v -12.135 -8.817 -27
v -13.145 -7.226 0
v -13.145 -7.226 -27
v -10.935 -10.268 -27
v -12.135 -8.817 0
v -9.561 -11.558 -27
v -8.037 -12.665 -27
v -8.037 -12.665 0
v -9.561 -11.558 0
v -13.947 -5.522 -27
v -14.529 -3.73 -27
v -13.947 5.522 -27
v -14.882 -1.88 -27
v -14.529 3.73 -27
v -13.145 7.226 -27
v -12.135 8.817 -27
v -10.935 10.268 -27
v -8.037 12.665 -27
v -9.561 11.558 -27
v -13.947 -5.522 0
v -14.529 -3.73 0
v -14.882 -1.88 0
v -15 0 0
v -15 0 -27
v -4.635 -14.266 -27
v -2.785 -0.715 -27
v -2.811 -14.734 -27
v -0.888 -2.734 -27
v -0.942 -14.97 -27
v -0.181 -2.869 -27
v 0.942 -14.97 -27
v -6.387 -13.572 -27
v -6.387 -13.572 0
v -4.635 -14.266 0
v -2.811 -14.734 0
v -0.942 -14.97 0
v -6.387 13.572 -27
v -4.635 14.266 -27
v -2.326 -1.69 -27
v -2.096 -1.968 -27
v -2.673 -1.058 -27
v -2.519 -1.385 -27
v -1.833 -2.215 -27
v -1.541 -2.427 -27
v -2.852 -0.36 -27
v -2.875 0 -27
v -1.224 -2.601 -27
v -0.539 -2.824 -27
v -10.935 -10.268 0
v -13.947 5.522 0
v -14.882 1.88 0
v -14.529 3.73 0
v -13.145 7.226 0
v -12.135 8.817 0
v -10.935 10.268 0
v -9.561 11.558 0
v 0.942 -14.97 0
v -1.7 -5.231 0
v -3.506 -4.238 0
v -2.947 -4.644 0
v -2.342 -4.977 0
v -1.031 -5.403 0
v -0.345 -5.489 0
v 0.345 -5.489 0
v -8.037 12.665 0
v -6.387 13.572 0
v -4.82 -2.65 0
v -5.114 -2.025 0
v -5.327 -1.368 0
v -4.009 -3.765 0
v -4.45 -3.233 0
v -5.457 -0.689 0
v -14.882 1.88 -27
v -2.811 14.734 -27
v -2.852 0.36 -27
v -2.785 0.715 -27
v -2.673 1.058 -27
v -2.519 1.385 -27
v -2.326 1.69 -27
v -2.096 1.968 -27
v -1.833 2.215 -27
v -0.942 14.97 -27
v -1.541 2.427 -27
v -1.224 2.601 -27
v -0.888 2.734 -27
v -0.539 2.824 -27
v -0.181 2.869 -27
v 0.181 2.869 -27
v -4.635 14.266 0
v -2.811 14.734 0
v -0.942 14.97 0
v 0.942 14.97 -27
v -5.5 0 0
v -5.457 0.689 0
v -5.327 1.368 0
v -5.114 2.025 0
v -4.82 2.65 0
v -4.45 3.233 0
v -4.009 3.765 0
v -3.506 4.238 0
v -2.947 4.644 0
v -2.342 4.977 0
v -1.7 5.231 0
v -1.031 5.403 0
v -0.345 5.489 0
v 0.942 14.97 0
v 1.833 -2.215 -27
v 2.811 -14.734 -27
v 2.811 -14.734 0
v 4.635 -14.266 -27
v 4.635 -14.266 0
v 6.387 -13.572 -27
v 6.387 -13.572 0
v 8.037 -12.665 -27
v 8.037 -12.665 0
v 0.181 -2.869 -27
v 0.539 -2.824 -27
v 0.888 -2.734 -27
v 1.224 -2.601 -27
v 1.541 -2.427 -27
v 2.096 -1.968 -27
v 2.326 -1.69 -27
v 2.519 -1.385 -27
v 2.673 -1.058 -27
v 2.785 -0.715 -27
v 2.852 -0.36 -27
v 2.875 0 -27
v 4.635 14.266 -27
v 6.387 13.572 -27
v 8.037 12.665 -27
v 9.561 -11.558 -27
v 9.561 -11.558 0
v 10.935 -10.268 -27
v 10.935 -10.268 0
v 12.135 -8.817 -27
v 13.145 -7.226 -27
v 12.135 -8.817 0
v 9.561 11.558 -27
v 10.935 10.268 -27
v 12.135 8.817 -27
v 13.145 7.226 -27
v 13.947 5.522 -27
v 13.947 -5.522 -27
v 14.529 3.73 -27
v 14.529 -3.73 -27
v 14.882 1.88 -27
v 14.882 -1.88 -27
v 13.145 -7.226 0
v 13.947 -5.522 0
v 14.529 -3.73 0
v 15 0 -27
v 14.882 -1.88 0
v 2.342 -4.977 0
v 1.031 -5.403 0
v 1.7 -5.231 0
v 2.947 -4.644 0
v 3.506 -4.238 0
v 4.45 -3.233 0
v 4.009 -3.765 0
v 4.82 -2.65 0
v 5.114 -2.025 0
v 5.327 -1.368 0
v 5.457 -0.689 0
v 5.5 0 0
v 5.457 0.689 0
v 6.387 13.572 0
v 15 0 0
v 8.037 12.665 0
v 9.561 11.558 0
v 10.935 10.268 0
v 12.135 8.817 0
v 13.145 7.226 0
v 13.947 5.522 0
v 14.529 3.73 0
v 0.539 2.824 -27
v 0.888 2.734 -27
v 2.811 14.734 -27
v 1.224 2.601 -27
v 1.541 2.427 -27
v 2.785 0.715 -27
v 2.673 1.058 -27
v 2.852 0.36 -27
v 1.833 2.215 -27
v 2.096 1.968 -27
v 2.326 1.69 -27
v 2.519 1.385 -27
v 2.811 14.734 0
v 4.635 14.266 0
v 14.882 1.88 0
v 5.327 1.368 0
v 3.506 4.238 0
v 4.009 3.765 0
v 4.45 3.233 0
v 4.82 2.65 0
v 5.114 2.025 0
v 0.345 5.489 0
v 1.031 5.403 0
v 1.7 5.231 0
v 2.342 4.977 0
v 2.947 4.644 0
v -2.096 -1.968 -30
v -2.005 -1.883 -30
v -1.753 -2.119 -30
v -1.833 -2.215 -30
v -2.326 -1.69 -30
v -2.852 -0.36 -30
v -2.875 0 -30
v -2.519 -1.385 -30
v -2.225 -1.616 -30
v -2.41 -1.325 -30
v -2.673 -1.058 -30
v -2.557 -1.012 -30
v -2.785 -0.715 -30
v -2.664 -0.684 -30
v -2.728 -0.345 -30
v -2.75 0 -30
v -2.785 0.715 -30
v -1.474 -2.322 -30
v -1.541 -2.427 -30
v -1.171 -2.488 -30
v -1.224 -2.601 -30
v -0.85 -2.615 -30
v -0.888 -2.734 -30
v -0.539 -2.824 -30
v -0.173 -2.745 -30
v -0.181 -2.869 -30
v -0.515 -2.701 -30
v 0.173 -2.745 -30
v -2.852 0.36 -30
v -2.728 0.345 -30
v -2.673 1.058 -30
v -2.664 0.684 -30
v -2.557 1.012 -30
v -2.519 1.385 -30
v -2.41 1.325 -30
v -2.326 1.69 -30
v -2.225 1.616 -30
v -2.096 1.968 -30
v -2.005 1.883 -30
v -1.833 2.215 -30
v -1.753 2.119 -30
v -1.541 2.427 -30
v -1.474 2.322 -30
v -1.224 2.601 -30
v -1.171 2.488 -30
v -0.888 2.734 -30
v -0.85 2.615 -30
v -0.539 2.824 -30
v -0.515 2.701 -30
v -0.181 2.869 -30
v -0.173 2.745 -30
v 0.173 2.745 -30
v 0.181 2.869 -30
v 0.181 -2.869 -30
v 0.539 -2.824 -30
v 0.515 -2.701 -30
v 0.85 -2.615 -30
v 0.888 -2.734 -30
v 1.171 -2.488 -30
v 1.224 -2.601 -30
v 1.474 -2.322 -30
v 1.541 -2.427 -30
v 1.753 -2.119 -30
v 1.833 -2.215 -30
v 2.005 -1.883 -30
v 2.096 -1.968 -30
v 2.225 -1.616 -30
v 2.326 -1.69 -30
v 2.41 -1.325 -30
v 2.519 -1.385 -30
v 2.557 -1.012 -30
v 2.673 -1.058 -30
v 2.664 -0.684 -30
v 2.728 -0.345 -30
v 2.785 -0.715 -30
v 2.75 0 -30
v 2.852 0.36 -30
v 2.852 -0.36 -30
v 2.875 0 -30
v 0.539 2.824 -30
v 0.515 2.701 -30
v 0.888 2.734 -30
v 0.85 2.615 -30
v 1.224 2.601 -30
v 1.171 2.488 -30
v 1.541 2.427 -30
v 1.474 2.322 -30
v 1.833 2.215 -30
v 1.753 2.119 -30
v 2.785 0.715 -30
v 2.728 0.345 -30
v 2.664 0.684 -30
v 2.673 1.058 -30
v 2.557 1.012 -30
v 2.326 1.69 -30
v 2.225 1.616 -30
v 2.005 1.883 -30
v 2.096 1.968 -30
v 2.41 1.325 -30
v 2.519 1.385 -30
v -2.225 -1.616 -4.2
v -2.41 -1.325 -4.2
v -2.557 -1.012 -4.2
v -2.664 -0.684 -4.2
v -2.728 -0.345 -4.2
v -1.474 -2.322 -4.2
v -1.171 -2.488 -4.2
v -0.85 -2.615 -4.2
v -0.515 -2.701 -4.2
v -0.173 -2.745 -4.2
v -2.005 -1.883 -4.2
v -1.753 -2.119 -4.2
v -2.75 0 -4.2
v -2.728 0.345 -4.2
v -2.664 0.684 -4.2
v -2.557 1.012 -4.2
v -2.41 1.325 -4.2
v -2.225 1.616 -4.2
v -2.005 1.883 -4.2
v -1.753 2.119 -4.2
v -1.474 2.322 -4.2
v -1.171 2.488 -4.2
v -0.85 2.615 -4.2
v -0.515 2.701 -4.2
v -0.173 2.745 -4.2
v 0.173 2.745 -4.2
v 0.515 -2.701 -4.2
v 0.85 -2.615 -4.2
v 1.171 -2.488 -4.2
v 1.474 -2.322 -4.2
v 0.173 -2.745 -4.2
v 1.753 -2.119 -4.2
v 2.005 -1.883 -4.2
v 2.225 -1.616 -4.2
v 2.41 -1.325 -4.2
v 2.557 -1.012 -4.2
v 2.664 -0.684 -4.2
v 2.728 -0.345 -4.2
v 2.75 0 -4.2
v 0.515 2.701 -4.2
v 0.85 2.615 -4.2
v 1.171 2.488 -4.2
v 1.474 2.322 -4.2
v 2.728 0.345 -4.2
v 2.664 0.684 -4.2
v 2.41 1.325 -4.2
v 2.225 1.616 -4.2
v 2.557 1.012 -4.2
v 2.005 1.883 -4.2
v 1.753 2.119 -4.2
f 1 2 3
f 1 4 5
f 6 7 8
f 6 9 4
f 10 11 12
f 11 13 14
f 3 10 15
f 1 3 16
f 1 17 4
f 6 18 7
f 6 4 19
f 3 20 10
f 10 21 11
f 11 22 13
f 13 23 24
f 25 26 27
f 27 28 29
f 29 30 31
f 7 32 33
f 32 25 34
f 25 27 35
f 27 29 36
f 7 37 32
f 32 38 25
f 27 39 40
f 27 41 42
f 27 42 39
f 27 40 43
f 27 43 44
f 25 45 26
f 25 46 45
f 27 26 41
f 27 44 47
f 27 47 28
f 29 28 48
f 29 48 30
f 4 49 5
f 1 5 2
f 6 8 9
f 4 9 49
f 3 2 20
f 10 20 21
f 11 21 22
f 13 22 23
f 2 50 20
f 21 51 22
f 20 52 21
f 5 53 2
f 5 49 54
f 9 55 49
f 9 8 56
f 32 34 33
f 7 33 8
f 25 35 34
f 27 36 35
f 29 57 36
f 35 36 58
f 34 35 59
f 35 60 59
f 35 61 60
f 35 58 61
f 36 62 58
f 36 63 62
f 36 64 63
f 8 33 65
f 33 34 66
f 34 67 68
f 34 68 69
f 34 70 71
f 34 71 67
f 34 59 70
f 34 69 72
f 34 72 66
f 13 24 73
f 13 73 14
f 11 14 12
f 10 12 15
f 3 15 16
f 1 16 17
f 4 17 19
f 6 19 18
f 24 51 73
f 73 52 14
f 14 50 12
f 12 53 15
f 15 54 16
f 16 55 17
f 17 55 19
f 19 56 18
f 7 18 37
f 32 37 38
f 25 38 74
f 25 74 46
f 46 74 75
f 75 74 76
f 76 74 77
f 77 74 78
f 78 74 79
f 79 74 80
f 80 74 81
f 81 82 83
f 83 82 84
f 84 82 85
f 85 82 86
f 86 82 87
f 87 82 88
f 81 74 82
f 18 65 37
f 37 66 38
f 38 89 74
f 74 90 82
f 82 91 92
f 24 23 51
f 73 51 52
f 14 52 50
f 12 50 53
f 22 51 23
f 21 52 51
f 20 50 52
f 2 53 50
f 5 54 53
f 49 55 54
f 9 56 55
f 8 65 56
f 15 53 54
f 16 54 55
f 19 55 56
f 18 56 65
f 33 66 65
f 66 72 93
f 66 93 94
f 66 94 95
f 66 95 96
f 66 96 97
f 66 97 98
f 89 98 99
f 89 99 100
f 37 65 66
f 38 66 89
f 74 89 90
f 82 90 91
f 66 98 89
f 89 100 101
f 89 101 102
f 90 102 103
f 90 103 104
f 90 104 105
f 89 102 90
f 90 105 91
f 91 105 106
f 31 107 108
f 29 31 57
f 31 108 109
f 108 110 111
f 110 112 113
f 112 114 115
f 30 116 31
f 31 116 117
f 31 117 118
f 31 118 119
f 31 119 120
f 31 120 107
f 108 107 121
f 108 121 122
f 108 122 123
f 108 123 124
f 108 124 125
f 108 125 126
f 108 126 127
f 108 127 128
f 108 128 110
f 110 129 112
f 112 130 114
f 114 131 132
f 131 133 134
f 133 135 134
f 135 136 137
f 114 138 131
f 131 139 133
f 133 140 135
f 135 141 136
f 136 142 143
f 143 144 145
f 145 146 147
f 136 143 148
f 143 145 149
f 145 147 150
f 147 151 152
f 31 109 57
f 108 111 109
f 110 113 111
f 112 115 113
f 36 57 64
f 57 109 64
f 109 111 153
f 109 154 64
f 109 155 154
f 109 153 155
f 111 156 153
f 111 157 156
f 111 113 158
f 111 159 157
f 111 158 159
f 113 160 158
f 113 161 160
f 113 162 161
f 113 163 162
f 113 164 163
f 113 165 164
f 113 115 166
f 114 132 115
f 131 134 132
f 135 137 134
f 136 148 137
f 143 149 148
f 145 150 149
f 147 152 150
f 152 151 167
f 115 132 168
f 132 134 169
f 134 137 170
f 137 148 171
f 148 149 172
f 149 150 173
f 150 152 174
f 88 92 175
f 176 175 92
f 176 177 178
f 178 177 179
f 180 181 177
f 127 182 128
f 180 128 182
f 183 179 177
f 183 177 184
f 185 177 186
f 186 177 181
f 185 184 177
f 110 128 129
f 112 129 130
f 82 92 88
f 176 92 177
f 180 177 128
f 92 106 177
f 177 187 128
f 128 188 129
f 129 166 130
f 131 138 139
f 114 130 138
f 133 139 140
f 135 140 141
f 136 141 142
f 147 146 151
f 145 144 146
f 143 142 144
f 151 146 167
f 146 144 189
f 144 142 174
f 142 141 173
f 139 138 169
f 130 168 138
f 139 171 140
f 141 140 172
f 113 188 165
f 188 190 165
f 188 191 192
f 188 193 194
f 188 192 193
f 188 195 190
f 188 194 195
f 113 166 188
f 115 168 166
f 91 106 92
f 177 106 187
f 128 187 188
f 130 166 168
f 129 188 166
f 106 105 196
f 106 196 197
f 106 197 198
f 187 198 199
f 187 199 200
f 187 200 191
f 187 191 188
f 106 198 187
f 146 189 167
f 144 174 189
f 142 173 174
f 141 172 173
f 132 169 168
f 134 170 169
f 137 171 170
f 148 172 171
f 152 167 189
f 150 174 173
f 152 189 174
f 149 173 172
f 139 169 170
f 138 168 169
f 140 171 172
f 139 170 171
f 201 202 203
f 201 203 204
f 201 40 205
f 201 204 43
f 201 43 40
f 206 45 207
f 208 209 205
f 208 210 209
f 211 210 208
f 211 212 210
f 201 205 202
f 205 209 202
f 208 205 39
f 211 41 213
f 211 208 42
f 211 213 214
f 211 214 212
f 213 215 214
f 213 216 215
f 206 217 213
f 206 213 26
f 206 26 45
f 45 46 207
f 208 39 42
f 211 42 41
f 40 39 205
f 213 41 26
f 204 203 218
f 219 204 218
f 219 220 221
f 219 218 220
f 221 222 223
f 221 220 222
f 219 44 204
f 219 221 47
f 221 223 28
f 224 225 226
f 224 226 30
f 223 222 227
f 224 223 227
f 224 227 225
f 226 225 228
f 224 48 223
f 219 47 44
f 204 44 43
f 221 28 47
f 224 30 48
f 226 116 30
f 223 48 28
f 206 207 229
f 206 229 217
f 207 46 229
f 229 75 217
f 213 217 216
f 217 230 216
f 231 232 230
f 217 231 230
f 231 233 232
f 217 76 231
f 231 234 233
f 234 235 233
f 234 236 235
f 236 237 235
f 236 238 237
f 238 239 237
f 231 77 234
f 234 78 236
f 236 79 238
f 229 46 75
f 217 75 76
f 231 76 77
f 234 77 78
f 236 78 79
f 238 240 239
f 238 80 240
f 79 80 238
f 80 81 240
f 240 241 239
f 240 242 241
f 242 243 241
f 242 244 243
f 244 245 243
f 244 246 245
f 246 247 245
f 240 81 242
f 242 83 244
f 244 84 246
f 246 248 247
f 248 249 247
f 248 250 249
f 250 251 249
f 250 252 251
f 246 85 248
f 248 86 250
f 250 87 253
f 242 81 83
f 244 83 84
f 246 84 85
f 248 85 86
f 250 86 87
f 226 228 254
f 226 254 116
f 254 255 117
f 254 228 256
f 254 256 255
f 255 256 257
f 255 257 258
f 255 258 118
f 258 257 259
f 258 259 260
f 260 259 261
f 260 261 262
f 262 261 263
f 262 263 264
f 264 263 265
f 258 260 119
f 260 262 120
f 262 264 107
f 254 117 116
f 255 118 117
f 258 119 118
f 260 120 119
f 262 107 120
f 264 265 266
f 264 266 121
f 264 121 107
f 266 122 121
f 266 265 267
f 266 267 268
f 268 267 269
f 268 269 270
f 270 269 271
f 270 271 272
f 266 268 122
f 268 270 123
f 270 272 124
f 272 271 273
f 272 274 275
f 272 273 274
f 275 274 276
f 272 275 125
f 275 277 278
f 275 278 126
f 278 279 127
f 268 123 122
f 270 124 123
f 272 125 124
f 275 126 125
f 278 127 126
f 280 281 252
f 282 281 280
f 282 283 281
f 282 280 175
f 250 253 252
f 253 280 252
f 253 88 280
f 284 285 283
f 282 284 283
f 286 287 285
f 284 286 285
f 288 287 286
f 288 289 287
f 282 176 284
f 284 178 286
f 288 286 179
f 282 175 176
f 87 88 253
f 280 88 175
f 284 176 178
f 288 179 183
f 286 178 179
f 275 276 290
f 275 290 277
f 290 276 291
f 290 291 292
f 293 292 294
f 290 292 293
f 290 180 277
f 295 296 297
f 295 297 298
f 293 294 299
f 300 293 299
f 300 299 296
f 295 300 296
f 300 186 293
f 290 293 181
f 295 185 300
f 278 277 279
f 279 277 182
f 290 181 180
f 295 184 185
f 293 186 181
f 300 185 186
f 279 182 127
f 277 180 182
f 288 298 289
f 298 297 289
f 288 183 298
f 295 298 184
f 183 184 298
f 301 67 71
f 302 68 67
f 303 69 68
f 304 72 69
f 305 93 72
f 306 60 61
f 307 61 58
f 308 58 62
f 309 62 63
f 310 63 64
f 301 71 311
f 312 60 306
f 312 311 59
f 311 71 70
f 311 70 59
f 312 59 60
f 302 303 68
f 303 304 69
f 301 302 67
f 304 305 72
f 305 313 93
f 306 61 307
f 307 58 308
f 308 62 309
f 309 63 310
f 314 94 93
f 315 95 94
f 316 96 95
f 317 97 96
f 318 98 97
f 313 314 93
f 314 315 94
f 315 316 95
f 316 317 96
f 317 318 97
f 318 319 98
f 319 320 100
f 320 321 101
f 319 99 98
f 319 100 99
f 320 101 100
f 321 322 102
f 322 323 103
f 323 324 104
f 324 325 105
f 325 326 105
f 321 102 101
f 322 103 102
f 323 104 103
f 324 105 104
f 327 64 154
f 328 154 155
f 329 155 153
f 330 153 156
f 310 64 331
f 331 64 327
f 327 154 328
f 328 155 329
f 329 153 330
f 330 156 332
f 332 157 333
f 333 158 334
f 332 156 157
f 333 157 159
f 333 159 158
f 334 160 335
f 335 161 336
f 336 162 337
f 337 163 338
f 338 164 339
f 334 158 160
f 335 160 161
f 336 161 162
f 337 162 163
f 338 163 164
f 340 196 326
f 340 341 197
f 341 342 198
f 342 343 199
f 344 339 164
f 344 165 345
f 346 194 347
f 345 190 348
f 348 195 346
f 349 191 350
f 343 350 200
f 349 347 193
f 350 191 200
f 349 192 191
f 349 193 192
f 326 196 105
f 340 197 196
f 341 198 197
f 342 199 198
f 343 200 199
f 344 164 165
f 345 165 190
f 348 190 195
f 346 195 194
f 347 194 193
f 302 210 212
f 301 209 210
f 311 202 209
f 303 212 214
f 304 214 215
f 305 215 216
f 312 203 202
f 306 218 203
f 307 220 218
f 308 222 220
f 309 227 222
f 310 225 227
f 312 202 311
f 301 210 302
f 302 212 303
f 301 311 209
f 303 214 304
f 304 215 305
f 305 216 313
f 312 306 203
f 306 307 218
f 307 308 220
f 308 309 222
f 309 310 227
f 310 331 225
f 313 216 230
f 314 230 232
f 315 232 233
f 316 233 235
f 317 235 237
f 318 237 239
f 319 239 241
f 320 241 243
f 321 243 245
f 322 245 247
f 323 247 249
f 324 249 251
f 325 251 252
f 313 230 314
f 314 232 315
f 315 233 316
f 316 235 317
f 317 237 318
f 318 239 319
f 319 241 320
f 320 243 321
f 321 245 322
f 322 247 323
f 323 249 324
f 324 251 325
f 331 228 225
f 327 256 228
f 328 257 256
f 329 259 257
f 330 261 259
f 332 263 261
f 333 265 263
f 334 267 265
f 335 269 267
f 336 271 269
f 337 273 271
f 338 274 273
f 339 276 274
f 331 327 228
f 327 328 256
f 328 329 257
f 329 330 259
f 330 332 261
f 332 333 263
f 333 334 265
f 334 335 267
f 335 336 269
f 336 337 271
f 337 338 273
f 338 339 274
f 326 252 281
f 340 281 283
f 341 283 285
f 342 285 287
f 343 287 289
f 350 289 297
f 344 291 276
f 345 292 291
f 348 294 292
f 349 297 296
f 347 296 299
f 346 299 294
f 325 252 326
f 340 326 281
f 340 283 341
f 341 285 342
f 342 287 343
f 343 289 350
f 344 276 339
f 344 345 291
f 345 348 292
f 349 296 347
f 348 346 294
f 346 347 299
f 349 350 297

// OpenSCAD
$fn = 50;

difference() {
	union() {
		translate(v = [0, 0, -27.0]) {
			cylinder(h = 27, r = 15.0);
		}
		#translate(v = [0, 0, -30.0]) {
			cylinder(h = 30, r = 2.875);
		}
	}
	union() {
		translate(v = [0, 0, 0]) {
			rotate(a = [0, 0, 0]) {
				difference() {
					union() {
						translate(v = [0, 0, -30.0]) {
							cylinder(h = 30, r = 2.25);
						}
						translate(v = [0, 0, -4.2]) {
							cylinder(h = 4.2, r1 = 2.75, r2 = 5.5);
						}
						translate(v = [0, 0, -30.0]) {
							cylinder(h = 30, r = 2.75);
						}
						translate(v = [0, 0, -30.0]) {
							cylinder(h = 30, r = 2.25);
						}
					}
					union();
				}
			}
		}
	}
}
